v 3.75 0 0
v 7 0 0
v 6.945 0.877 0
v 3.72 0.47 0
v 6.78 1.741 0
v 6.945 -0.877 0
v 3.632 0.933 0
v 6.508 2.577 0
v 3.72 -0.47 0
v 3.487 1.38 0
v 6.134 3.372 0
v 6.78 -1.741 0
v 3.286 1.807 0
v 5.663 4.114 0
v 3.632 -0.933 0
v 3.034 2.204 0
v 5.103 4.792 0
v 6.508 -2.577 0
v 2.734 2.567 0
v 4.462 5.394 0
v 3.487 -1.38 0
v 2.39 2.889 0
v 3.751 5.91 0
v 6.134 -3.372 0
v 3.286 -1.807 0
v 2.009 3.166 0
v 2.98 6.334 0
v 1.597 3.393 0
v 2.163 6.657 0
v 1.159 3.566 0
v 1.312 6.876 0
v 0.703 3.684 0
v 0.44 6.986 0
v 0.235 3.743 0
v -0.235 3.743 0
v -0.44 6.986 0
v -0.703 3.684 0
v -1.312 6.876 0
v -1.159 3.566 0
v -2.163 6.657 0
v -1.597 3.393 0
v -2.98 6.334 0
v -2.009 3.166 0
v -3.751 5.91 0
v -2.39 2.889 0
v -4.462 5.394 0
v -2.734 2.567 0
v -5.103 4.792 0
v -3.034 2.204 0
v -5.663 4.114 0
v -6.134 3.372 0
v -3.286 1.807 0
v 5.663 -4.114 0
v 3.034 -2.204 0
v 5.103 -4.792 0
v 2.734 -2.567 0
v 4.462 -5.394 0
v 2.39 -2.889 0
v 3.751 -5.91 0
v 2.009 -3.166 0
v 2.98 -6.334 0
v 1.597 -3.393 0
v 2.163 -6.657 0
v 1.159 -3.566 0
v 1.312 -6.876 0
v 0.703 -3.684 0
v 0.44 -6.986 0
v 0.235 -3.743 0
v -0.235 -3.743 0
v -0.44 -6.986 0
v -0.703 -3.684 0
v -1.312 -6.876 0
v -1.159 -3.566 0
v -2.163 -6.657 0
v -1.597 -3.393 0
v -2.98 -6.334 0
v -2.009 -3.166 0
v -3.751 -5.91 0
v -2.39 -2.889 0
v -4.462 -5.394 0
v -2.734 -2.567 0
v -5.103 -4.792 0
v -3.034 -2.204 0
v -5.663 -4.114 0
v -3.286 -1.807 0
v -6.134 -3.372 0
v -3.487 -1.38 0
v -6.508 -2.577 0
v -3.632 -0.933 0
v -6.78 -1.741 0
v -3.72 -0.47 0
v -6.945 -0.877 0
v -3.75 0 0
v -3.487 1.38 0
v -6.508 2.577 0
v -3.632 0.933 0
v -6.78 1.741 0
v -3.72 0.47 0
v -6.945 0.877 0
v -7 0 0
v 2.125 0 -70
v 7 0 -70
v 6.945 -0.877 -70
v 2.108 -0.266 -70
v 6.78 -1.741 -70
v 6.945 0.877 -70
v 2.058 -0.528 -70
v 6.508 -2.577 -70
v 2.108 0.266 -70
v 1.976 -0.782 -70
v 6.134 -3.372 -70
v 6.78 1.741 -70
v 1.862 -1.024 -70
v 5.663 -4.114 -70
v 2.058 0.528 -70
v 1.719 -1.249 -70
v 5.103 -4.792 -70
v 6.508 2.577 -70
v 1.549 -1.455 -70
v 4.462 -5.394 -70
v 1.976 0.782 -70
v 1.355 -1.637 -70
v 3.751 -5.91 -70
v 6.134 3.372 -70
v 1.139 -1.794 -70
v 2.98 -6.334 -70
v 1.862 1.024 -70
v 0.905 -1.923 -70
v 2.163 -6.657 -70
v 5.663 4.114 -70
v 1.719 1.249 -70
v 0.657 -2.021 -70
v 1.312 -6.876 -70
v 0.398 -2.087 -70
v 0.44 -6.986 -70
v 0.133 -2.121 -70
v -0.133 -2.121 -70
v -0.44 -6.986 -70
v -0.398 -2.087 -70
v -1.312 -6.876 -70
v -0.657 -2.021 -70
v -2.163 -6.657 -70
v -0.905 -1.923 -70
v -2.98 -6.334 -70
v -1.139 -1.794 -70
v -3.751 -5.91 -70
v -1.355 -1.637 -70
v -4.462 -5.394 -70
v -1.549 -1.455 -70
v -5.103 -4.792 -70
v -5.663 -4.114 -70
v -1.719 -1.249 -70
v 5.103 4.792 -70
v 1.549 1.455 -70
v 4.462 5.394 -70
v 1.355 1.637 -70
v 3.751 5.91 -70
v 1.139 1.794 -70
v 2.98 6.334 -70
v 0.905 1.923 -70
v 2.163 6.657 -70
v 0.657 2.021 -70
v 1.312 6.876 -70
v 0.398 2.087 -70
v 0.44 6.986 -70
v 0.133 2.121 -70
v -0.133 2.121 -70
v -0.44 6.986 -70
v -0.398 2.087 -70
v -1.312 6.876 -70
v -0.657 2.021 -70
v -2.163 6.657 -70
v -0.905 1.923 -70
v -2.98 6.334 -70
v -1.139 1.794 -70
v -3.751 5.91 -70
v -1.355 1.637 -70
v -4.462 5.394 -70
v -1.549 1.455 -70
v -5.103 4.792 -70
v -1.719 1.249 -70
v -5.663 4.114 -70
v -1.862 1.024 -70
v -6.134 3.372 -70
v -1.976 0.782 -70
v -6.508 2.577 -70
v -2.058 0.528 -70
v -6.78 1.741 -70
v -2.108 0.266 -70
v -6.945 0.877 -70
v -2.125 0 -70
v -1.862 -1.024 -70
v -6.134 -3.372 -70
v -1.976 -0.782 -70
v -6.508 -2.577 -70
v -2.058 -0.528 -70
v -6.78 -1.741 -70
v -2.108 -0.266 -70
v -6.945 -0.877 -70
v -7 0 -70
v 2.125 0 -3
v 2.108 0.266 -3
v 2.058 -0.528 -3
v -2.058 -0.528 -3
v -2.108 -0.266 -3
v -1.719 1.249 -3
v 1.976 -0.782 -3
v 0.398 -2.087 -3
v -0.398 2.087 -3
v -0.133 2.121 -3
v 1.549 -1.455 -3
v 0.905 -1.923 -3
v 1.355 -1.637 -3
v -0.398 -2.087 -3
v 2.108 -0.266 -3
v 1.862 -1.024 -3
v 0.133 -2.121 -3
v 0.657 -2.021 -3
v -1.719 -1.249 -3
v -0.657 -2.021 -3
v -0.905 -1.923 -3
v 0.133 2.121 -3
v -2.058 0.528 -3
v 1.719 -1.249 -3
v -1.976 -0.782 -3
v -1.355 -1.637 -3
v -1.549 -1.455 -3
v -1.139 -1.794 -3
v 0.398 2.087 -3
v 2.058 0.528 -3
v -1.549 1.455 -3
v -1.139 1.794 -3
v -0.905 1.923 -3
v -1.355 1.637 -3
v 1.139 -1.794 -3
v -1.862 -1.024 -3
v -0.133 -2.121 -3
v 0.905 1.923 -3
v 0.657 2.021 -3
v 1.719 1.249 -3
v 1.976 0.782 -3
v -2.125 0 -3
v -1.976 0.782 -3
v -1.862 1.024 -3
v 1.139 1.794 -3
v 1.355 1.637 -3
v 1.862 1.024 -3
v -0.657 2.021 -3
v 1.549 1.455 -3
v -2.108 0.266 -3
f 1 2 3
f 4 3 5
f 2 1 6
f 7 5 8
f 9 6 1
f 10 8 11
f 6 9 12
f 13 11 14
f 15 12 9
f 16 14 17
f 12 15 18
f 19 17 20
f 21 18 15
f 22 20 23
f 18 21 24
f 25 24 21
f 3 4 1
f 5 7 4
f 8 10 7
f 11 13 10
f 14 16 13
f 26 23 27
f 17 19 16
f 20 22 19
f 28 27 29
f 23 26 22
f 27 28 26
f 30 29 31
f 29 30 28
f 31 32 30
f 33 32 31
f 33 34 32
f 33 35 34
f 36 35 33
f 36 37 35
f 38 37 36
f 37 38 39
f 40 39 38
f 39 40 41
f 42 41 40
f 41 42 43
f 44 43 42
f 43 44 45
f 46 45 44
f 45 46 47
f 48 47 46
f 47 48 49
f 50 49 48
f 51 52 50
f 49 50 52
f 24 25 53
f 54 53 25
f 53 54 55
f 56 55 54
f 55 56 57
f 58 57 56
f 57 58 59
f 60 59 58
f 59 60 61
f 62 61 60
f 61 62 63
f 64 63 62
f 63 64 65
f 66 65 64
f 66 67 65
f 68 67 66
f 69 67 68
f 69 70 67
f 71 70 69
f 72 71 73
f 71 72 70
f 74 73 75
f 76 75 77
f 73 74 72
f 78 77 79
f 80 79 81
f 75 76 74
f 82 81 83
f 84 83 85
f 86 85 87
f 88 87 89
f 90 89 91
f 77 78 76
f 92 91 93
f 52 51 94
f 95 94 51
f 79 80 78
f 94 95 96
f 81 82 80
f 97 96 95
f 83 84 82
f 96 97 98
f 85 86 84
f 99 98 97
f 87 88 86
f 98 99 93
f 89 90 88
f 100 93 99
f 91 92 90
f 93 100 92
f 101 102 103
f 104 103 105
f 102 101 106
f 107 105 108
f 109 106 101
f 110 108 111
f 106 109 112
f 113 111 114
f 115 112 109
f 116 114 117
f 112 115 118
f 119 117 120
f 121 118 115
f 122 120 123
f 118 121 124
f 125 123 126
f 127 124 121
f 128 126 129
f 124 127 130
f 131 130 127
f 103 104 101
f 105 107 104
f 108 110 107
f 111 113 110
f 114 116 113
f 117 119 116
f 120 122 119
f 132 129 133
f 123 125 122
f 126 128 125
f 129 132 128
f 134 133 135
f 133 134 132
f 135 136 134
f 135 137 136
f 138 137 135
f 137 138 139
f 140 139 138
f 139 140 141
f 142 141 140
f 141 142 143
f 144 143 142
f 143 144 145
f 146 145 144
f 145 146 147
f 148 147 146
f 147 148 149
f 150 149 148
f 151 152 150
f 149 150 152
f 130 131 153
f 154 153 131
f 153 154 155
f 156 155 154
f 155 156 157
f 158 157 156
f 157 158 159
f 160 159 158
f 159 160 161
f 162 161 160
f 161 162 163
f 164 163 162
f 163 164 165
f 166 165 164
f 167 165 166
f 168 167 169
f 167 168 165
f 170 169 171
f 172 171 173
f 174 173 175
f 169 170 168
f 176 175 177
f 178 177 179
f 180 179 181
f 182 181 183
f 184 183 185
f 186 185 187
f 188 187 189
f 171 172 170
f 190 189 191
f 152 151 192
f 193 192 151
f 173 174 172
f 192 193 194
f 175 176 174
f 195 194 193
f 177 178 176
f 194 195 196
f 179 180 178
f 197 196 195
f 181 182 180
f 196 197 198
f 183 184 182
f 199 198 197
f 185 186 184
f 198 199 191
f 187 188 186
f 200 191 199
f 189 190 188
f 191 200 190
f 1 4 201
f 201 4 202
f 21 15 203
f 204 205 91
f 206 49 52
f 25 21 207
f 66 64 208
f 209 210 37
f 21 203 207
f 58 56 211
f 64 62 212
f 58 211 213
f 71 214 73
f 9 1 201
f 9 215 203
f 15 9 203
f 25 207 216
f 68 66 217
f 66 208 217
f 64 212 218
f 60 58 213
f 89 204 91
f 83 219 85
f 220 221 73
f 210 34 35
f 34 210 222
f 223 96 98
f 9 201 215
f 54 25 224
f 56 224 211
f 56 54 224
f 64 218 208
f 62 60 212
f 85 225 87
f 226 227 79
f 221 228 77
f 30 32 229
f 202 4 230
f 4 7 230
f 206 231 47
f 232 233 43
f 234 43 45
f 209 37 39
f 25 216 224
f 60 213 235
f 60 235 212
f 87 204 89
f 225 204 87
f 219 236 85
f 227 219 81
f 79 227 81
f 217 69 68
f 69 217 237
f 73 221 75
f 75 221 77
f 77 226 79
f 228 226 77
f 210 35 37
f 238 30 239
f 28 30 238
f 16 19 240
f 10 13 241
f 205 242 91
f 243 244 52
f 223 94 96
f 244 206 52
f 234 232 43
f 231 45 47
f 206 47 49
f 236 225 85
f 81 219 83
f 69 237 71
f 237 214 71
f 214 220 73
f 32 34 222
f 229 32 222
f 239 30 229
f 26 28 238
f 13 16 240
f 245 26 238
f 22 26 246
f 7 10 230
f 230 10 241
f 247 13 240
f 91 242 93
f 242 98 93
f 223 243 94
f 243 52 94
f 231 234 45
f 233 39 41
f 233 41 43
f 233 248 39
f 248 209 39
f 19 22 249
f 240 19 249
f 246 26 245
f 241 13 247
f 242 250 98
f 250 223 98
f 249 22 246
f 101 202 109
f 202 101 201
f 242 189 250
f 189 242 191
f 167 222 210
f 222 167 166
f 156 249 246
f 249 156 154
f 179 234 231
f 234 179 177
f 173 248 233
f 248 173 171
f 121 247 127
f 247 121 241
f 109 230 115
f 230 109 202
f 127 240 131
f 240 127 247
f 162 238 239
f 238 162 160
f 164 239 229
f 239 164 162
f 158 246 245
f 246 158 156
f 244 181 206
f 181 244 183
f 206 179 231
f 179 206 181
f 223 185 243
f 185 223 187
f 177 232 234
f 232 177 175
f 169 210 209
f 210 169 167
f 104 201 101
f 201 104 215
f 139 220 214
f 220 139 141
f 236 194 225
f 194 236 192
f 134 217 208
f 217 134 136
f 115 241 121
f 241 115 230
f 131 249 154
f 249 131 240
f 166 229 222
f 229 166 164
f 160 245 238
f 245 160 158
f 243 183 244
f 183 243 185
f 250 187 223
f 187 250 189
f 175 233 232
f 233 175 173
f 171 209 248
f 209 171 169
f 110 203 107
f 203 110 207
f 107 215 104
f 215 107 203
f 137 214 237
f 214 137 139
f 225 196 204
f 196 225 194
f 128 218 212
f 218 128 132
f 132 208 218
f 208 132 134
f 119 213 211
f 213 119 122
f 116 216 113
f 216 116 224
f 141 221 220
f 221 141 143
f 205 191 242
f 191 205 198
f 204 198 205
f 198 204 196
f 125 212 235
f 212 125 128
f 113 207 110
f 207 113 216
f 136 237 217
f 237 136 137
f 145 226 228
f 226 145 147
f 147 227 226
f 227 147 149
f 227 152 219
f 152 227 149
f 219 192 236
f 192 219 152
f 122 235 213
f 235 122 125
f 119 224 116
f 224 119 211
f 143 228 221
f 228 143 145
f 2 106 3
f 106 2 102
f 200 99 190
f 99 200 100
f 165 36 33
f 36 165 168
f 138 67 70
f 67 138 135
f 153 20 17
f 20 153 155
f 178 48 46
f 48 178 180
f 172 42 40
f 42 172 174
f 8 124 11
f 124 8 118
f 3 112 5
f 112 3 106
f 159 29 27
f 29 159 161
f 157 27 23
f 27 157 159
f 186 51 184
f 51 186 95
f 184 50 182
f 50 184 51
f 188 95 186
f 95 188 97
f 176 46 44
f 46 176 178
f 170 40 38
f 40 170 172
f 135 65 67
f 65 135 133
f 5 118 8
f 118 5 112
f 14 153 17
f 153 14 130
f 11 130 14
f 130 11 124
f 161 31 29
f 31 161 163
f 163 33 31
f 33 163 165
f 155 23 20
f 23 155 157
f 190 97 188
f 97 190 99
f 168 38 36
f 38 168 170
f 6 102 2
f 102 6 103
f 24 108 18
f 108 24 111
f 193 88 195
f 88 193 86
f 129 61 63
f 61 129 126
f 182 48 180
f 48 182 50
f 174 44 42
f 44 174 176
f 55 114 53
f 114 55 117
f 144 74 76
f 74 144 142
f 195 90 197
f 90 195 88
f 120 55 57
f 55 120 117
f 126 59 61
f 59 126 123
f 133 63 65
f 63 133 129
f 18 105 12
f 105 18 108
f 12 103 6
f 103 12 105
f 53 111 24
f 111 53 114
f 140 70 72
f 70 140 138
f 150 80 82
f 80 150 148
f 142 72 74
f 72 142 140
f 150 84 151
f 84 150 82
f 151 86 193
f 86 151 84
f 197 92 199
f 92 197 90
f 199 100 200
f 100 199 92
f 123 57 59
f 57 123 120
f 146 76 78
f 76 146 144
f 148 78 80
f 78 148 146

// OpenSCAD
$fn = 50;


difference() {
	union() {
		translate(v = [0, 0, -70.0000000000]) {
			cylinder(h = 70, r = 7.0000000000);
		}
		cylinder(h = 0, r = 17.0000000000);
	}
	union() {
		translate(v = [0, 0, 0]) {
			rotate(a = [0, 0, 0]) {
				difference() {
					union() {
						#translate(v = [0, 0, -70.0000000000]) {
							cylinder(h = 70, r = 2.0000000000);
						}
						#translate(v = [0, 0, -3]) {
							cylinder(h = 3, r = 7.0000000000, r1 = 2.1250000000, r2 = 3.7500000000);
						}
						#translate(v = [0, 0, -70.0000000000]) {
							cylinder(h = 70, r = 2.1250000000);
						}
						#translate(v = [0, 0, -70.0000000000]) {
							cylinder(h = 70, r = 2.0000000000);
						}
					}
					union();
				}
			}
		}
	}
}
